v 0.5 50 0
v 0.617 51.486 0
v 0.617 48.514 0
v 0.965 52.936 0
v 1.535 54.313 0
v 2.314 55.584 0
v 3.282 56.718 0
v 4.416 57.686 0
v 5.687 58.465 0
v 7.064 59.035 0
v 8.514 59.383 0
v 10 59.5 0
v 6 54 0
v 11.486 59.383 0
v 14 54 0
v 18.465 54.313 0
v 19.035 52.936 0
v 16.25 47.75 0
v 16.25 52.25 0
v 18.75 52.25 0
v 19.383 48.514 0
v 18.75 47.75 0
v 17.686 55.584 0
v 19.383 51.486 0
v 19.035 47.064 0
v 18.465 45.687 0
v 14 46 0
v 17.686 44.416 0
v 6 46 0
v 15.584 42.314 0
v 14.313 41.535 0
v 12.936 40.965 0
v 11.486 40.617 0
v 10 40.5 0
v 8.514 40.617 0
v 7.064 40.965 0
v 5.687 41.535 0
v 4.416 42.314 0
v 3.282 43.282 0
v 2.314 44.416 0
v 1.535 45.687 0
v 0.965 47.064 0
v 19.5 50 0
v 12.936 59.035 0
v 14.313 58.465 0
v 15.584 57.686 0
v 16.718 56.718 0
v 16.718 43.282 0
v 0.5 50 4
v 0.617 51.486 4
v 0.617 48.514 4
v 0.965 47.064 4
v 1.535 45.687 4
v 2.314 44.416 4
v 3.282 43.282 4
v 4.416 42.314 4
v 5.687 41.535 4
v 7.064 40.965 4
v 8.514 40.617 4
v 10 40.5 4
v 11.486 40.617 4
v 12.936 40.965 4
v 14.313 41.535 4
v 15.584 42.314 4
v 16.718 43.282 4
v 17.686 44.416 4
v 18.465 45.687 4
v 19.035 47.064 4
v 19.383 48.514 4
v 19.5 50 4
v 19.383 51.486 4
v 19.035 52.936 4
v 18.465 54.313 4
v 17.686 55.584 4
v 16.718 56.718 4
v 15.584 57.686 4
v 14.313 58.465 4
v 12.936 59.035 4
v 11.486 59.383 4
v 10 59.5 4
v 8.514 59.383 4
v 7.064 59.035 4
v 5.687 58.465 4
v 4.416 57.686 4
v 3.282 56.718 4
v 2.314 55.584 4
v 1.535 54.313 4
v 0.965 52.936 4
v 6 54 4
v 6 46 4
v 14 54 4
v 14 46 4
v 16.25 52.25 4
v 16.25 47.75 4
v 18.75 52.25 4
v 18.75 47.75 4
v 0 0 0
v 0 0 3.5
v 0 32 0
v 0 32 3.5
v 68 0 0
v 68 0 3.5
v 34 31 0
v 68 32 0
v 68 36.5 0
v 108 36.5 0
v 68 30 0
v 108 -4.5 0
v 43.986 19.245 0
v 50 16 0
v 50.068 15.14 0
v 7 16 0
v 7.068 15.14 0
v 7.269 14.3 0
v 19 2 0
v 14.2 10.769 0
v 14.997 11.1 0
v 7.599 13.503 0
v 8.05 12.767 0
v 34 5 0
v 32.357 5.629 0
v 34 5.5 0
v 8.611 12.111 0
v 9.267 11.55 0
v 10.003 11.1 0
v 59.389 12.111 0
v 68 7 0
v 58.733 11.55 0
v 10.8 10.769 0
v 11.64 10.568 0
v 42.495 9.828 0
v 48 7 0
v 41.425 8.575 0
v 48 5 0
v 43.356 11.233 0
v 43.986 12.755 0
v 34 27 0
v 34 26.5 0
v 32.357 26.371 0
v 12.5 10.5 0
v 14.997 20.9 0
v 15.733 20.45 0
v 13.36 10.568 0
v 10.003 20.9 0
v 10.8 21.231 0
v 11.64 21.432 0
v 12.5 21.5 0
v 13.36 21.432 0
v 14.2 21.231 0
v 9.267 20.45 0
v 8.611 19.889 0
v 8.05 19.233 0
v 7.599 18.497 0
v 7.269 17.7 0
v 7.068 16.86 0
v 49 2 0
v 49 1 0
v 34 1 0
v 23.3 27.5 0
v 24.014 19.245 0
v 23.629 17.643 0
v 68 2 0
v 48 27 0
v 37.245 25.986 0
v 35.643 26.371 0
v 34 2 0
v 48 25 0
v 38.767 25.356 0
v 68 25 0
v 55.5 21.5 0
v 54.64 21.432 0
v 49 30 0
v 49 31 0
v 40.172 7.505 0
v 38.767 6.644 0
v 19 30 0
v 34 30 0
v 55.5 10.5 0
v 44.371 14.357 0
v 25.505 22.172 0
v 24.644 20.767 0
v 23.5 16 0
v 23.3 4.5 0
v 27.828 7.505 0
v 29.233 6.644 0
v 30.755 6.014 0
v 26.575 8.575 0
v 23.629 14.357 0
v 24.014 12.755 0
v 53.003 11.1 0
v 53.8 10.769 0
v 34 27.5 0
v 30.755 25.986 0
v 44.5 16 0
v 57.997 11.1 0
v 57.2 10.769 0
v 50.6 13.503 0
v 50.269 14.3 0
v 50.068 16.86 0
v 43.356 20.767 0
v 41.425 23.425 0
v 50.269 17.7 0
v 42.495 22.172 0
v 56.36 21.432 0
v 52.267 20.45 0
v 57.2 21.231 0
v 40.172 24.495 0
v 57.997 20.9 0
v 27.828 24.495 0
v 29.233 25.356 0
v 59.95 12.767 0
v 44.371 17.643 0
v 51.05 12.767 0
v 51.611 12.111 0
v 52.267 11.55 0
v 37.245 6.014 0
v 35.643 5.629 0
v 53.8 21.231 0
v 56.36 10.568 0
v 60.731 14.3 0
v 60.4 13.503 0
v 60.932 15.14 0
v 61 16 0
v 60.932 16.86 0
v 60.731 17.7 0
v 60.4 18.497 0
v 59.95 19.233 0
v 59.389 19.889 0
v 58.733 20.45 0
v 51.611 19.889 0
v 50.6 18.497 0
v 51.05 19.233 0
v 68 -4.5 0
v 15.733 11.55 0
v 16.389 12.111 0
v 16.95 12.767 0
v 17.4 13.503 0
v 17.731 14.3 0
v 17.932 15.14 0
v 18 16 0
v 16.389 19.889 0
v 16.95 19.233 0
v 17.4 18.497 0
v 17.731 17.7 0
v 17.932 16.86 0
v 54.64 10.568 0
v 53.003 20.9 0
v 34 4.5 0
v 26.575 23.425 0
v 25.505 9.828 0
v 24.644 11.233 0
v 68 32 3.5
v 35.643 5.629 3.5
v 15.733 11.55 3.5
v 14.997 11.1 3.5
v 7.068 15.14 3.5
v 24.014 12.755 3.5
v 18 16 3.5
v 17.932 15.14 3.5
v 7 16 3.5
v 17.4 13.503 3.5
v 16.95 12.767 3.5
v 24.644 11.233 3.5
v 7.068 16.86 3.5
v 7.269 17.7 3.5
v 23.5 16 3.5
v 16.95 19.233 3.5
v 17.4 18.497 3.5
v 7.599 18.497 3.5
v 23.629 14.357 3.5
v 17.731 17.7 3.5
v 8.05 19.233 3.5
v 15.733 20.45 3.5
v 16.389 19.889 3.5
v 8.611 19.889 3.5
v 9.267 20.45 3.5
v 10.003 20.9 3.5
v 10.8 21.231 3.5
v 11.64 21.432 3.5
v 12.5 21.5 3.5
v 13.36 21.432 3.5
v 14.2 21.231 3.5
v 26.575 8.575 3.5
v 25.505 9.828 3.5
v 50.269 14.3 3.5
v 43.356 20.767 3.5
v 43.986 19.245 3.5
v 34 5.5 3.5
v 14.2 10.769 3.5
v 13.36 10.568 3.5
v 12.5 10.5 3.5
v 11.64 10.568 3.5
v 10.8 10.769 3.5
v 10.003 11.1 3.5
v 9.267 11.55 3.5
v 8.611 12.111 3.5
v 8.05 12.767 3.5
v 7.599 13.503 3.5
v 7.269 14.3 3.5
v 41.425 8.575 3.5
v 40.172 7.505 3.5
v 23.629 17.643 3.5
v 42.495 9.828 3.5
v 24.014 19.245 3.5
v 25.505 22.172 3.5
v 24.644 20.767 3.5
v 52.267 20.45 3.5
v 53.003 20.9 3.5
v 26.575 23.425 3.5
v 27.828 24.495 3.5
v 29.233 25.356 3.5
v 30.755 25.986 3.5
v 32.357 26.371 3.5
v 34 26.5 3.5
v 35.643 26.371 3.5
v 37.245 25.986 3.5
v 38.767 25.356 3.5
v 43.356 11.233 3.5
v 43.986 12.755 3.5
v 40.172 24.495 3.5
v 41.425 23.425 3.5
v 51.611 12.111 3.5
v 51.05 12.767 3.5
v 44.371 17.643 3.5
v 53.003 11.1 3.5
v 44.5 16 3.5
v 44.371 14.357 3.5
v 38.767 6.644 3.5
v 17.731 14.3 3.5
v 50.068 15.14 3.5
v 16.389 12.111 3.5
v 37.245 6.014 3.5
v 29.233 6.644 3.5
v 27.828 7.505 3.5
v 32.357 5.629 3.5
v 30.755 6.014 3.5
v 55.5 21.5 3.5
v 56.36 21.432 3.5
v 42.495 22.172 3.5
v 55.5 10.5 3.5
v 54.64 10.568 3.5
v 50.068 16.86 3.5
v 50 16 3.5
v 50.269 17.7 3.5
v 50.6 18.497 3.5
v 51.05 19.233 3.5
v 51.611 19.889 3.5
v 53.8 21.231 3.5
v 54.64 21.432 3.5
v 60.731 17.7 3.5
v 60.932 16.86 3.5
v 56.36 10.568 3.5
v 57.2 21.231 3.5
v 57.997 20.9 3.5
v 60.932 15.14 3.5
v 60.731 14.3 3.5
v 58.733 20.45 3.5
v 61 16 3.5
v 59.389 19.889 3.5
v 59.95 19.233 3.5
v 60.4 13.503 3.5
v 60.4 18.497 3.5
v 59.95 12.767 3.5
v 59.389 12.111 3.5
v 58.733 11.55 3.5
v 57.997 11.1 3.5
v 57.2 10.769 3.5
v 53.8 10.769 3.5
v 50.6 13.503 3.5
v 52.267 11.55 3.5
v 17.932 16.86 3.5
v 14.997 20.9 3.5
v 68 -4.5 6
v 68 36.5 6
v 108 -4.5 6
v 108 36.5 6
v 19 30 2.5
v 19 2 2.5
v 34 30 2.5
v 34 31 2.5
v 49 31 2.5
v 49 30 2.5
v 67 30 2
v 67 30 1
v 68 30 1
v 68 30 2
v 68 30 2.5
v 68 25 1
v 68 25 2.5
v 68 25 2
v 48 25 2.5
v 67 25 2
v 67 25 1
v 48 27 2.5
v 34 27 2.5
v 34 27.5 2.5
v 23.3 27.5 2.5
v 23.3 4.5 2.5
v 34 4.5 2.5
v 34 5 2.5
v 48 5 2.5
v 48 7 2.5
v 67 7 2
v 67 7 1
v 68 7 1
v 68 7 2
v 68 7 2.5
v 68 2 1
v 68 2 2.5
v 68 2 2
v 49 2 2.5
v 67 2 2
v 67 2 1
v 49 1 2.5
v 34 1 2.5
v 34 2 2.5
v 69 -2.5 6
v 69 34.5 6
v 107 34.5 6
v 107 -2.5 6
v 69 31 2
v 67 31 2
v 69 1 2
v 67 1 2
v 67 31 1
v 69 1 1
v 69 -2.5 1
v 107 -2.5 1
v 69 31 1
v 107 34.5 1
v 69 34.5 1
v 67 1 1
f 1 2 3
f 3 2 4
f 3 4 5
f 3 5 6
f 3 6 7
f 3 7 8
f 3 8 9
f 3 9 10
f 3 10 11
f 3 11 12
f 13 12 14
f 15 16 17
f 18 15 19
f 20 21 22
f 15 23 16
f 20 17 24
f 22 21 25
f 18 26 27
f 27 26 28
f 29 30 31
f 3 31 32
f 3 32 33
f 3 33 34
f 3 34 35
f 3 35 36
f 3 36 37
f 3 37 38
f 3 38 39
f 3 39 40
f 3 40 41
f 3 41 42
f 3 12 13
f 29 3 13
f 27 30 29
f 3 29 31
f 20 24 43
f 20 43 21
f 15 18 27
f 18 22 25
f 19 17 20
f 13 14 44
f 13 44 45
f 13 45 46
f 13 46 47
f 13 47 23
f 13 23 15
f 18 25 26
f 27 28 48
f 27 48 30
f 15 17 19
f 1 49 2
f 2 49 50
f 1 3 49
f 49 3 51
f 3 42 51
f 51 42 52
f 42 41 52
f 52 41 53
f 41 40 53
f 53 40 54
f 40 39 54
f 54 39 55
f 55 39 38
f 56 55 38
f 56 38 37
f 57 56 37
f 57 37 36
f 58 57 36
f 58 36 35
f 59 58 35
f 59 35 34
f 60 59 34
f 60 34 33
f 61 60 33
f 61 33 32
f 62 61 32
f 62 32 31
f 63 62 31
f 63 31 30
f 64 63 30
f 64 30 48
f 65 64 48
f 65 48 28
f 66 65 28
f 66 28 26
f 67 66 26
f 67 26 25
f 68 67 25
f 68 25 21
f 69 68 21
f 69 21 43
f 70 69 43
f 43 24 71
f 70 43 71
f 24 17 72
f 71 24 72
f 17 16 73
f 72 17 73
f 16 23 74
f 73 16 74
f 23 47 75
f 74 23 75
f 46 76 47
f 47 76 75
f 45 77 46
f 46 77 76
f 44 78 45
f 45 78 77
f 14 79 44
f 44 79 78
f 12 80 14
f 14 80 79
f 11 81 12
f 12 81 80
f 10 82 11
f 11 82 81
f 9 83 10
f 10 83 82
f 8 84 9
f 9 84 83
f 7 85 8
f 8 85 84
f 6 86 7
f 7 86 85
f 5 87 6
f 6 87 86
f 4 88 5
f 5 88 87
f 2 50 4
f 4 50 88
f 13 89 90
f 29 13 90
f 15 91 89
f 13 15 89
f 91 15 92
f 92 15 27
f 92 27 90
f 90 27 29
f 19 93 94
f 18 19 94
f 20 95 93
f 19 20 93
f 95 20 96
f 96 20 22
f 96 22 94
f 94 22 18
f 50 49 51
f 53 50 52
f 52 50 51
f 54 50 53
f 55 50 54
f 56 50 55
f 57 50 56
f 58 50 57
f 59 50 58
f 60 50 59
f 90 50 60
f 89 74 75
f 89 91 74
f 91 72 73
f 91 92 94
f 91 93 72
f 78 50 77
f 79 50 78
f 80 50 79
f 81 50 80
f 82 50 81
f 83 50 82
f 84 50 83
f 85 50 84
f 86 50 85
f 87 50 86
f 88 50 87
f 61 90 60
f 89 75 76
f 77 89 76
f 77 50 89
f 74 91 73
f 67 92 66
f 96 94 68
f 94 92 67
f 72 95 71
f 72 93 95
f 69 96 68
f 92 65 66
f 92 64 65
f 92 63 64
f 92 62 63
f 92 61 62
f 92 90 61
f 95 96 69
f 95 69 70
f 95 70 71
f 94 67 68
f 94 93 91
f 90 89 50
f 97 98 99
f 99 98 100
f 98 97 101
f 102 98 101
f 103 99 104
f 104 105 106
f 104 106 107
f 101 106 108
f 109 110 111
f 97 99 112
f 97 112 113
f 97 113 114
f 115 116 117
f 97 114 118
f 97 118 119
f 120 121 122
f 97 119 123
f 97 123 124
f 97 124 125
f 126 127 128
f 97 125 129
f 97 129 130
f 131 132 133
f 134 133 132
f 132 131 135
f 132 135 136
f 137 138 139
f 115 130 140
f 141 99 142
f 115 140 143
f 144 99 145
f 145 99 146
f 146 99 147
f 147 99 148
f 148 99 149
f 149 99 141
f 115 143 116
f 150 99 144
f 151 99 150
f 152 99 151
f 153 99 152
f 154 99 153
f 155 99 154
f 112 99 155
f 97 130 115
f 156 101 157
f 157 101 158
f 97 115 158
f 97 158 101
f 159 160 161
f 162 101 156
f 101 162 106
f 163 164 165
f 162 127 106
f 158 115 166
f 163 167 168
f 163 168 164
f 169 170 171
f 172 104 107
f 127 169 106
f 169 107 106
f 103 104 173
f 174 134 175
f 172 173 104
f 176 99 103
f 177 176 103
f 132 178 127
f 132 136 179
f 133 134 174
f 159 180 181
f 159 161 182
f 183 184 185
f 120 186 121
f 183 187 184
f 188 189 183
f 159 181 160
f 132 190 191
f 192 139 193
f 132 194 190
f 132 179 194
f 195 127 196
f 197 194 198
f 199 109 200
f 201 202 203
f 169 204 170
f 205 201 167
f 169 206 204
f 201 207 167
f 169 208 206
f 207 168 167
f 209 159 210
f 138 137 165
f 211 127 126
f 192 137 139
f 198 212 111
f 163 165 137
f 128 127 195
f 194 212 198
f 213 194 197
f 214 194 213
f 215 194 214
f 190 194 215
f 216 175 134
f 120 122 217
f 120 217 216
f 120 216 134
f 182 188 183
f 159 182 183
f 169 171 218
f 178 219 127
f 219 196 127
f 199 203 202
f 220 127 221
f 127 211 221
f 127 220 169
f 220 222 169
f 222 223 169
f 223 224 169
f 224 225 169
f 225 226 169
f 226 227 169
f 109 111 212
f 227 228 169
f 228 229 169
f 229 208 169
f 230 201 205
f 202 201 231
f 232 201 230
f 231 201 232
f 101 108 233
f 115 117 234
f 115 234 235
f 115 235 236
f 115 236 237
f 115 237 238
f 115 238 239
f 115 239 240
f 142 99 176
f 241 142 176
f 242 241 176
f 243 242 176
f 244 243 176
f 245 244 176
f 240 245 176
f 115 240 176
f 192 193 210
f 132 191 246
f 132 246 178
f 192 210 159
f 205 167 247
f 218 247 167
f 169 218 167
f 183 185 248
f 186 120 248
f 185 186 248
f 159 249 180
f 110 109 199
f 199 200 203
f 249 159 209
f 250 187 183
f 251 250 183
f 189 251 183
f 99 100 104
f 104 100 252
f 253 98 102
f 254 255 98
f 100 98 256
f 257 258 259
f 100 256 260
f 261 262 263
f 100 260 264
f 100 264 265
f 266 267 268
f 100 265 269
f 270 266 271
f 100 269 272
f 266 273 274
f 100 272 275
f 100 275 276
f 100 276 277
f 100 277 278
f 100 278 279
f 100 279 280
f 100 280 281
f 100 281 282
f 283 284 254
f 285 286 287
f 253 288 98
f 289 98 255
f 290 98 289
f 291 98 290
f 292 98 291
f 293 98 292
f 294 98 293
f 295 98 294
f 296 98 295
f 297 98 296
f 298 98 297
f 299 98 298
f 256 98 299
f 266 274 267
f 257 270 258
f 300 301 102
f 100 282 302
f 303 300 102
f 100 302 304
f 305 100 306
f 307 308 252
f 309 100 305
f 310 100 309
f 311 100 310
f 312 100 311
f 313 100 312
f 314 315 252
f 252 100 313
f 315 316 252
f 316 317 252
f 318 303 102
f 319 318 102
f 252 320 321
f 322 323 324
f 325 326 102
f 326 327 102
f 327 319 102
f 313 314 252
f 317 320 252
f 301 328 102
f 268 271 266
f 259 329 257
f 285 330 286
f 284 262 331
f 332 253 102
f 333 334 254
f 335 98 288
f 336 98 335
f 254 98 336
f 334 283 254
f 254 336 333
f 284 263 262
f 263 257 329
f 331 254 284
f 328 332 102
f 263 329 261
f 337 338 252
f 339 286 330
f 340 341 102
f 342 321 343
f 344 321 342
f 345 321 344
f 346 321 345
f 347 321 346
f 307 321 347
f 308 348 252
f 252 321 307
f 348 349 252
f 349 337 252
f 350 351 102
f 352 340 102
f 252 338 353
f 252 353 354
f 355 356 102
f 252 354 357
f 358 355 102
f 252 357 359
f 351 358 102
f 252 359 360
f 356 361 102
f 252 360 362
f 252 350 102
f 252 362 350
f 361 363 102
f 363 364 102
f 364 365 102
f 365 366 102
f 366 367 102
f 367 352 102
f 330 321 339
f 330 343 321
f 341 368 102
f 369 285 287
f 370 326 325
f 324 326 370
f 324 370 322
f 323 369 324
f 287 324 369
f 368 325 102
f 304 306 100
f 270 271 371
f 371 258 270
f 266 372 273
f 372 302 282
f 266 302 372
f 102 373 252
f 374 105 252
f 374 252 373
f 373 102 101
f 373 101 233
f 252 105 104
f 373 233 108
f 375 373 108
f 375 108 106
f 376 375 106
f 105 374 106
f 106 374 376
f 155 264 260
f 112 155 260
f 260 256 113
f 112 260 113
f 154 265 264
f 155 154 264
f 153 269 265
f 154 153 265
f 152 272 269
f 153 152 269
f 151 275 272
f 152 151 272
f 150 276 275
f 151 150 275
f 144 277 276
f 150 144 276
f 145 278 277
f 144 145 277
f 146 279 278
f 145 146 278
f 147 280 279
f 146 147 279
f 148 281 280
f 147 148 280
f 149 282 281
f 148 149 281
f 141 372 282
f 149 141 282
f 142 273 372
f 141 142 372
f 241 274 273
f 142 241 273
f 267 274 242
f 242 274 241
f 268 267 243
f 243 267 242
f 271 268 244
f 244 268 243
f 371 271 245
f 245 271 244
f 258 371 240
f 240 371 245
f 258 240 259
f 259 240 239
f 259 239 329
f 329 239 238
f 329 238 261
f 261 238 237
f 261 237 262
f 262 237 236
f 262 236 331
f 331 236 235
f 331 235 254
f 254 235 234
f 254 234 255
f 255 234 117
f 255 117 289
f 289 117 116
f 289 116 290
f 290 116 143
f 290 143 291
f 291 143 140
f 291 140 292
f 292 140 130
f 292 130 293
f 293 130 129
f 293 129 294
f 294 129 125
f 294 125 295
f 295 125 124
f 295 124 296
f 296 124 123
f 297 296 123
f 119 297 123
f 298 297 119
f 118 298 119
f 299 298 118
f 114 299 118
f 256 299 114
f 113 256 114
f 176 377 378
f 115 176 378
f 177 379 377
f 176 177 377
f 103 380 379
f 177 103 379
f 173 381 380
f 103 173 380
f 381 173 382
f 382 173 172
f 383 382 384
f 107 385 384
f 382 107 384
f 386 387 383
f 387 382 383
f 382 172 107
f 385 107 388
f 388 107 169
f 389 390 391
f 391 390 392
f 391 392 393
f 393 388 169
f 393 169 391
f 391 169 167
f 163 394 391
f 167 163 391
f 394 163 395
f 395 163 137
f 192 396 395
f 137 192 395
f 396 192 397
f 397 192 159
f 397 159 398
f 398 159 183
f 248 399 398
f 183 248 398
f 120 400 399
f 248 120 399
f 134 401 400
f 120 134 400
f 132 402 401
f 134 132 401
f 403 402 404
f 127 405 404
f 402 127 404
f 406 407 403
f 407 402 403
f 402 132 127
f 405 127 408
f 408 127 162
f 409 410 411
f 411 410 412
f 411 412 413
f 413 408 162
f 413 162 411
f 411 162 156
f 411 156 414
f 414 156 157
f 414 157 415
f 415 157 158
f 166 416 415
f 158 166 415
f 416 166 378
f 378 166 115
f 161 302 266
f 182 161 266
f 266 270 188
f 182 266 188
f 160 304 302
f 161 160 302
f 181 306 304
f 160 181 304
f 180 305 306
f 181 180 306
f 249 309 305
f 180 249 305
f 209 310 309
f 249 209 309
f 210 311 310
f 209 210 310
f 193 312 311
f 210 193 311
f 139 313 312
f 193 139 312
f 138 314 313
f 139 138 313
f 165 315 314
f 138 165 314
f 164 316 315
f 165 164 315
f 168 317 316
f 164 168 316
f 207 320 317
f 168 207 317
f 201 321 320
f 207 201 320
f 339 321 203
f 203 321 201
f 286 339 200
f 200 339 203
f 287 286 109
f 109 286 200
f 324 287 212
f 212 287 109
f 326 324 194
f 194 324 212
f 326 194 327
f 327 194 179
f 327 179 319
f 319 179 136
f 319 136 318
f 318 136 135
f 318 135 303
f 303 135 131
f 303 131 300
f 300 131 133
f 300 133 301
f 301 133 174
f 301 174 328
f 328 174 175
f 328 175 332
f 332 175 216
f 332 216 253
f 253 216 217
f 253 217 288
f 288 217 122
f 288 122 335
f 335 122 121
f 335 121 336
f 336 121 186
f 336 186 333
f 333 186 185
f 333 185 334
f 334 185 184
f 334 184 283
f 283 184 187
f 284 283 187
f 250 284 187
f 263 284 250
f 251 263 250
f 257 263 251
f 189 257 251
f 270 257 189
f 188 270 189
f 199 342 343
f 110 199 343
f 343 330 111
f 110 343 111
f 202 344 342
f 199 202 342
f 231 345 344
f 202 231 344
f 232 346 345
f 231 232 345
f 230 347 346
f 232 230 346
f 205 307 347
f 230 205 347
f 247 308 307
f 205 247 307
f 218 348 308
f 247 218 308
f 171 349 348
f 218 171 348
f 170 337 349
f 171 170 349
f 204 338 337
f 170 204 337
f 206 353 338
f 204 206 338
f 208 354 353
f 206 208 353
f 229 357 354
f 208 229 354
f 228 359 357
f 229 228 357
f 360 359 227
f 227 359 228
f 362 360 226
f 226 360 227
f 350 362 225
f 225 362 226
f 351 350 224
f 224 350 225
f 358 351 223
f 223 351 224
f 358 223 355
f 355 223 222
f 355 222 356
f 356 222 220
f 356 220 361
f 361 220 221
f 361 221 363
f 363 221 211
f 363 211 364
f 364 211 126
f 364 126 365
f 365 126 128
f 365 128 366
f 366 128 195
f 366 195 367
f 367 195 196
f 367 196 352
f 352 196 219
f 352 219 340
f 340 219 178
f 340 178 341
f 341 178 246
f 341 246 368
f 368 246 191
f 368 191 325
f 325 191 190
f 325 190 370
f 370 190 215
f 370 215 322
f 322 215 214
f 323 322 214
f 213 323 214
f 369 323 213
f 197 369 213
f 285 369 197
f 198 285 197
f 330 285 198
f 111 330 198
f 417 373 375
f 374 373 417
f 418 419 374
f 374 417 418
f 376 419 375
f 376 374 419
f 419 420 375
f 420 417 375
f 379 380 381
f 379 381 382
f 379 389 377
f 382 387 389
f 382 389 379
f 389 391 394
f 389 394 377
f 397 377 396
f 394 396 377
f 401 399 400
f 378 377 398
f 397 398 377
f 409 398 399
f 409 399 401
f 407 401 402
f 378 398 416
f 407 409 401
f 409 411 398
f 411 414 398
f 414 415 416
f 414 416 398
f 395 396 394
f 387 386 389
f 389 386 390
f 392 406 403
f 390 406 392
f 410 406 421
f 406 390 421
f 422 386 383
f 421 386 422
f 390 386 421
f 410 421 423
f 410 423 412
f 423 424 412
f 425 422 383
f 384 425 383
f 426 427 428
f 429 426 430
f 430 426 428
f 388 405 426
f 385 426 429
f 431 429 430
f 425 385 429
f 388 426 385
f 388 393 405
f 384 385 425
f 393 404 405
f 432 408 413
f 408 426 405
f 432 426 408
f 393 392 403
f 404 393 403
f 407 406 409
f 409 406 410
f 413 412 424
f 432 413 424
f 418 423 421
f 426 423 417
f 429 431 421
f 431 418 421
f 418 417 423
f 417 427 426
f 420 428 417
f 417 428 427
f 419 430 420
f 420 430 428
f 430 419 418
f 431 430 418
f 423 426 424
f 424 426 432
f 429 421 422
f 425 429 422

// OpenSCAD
VIERKANT = 7.5;
BREITE = 32;
HOEHE = 68;
BOHRUNGEN = 11;

translate([10, 50, 0]) {
	inlay();
}


difference() {
	union() {
		case();
		translate([68, -4.5, 0]) {
			difference() {
				cube([40, 41, 6]);
				translate([1, 2, 1]) {
					cube([38, 37, 10]);
				}
			}
			
		}
	}
	translate([67, 1, 1]) {
		cube([2, 30, 1]);
	}
}

module inlay() {
	difference(){
		cylinder($fn=40, h=4, r=((32/2) - 6.5));
		cube([(VIERKANT + 0.5), (VIERKANT + 0.5), 10], center=true);
		translate([(((32/2)-6)- 2.5), 0, 0]) {
			cube([2.5, 4.5, 10], center=true);
		}
	}
}

module case() {
	difference() {
		cube([HOEHE, BREITE, 3.5]);
	
		// Bohrung oben
		translate([((HOEHE-43)/2), (BREITE/2), 0]) {
			cylinder($fn=40, h=4, r=(BOHRUNGEN/2));
		}
	
		// Bohrung unten
		translate([(HOEHE-((HOEHE-43)/2)), (BREITE/2), 0]) {
			cylinder($fn=40 ,h=4, r=(BOHRUNGEN/2));
		}
	
		// Vierkant
		translate([((43/2)+((HOEHE-43)/2)),(BREITE/2),-1]) {
			cylinder($fn=40, h=10, r=10.5);
		}
	
		// Leitungen links oben
		translate([19, (BREITE-4.5), 0]) {
			cube([19, 2.5, 2.5]);
		}
	
		// Leitungen rechts oben
		translate([19, 2, 0]) {
			cube([20, 2.5, 2.5]);
		}

		// Leitung links unten
		translate([48, (BREITE-7), 0]) {
			cube([30, 5, 2.5]);
		}

		// Leitung rechts unten
		translate([48, 2, 0]) {
			cube([30, 5, 2.5]);
		}

		// Leitung oben
		translate([19, 2, 0]) {
			cube([2.5, 28 , 2.5]);
		}

		// Reed Konakt Oben
		translate([20.3, (BREITE / 2) - 12, 0]) {
			cube([3, 25, 2.5]);
		}

		// Reed Kontakt Seite
		translate([((43/2)+ ((HOEHE-43)/2)), (BREITE-2-3),0]) {
			cube([15,4,2.5]);
		}

		// Reed Kontakt Seite
		translate([((43/2) + ((HOEHE-43)/2)), 1, 0]) {
			cube([15, 4, 2.5]);
		}
	}
}
